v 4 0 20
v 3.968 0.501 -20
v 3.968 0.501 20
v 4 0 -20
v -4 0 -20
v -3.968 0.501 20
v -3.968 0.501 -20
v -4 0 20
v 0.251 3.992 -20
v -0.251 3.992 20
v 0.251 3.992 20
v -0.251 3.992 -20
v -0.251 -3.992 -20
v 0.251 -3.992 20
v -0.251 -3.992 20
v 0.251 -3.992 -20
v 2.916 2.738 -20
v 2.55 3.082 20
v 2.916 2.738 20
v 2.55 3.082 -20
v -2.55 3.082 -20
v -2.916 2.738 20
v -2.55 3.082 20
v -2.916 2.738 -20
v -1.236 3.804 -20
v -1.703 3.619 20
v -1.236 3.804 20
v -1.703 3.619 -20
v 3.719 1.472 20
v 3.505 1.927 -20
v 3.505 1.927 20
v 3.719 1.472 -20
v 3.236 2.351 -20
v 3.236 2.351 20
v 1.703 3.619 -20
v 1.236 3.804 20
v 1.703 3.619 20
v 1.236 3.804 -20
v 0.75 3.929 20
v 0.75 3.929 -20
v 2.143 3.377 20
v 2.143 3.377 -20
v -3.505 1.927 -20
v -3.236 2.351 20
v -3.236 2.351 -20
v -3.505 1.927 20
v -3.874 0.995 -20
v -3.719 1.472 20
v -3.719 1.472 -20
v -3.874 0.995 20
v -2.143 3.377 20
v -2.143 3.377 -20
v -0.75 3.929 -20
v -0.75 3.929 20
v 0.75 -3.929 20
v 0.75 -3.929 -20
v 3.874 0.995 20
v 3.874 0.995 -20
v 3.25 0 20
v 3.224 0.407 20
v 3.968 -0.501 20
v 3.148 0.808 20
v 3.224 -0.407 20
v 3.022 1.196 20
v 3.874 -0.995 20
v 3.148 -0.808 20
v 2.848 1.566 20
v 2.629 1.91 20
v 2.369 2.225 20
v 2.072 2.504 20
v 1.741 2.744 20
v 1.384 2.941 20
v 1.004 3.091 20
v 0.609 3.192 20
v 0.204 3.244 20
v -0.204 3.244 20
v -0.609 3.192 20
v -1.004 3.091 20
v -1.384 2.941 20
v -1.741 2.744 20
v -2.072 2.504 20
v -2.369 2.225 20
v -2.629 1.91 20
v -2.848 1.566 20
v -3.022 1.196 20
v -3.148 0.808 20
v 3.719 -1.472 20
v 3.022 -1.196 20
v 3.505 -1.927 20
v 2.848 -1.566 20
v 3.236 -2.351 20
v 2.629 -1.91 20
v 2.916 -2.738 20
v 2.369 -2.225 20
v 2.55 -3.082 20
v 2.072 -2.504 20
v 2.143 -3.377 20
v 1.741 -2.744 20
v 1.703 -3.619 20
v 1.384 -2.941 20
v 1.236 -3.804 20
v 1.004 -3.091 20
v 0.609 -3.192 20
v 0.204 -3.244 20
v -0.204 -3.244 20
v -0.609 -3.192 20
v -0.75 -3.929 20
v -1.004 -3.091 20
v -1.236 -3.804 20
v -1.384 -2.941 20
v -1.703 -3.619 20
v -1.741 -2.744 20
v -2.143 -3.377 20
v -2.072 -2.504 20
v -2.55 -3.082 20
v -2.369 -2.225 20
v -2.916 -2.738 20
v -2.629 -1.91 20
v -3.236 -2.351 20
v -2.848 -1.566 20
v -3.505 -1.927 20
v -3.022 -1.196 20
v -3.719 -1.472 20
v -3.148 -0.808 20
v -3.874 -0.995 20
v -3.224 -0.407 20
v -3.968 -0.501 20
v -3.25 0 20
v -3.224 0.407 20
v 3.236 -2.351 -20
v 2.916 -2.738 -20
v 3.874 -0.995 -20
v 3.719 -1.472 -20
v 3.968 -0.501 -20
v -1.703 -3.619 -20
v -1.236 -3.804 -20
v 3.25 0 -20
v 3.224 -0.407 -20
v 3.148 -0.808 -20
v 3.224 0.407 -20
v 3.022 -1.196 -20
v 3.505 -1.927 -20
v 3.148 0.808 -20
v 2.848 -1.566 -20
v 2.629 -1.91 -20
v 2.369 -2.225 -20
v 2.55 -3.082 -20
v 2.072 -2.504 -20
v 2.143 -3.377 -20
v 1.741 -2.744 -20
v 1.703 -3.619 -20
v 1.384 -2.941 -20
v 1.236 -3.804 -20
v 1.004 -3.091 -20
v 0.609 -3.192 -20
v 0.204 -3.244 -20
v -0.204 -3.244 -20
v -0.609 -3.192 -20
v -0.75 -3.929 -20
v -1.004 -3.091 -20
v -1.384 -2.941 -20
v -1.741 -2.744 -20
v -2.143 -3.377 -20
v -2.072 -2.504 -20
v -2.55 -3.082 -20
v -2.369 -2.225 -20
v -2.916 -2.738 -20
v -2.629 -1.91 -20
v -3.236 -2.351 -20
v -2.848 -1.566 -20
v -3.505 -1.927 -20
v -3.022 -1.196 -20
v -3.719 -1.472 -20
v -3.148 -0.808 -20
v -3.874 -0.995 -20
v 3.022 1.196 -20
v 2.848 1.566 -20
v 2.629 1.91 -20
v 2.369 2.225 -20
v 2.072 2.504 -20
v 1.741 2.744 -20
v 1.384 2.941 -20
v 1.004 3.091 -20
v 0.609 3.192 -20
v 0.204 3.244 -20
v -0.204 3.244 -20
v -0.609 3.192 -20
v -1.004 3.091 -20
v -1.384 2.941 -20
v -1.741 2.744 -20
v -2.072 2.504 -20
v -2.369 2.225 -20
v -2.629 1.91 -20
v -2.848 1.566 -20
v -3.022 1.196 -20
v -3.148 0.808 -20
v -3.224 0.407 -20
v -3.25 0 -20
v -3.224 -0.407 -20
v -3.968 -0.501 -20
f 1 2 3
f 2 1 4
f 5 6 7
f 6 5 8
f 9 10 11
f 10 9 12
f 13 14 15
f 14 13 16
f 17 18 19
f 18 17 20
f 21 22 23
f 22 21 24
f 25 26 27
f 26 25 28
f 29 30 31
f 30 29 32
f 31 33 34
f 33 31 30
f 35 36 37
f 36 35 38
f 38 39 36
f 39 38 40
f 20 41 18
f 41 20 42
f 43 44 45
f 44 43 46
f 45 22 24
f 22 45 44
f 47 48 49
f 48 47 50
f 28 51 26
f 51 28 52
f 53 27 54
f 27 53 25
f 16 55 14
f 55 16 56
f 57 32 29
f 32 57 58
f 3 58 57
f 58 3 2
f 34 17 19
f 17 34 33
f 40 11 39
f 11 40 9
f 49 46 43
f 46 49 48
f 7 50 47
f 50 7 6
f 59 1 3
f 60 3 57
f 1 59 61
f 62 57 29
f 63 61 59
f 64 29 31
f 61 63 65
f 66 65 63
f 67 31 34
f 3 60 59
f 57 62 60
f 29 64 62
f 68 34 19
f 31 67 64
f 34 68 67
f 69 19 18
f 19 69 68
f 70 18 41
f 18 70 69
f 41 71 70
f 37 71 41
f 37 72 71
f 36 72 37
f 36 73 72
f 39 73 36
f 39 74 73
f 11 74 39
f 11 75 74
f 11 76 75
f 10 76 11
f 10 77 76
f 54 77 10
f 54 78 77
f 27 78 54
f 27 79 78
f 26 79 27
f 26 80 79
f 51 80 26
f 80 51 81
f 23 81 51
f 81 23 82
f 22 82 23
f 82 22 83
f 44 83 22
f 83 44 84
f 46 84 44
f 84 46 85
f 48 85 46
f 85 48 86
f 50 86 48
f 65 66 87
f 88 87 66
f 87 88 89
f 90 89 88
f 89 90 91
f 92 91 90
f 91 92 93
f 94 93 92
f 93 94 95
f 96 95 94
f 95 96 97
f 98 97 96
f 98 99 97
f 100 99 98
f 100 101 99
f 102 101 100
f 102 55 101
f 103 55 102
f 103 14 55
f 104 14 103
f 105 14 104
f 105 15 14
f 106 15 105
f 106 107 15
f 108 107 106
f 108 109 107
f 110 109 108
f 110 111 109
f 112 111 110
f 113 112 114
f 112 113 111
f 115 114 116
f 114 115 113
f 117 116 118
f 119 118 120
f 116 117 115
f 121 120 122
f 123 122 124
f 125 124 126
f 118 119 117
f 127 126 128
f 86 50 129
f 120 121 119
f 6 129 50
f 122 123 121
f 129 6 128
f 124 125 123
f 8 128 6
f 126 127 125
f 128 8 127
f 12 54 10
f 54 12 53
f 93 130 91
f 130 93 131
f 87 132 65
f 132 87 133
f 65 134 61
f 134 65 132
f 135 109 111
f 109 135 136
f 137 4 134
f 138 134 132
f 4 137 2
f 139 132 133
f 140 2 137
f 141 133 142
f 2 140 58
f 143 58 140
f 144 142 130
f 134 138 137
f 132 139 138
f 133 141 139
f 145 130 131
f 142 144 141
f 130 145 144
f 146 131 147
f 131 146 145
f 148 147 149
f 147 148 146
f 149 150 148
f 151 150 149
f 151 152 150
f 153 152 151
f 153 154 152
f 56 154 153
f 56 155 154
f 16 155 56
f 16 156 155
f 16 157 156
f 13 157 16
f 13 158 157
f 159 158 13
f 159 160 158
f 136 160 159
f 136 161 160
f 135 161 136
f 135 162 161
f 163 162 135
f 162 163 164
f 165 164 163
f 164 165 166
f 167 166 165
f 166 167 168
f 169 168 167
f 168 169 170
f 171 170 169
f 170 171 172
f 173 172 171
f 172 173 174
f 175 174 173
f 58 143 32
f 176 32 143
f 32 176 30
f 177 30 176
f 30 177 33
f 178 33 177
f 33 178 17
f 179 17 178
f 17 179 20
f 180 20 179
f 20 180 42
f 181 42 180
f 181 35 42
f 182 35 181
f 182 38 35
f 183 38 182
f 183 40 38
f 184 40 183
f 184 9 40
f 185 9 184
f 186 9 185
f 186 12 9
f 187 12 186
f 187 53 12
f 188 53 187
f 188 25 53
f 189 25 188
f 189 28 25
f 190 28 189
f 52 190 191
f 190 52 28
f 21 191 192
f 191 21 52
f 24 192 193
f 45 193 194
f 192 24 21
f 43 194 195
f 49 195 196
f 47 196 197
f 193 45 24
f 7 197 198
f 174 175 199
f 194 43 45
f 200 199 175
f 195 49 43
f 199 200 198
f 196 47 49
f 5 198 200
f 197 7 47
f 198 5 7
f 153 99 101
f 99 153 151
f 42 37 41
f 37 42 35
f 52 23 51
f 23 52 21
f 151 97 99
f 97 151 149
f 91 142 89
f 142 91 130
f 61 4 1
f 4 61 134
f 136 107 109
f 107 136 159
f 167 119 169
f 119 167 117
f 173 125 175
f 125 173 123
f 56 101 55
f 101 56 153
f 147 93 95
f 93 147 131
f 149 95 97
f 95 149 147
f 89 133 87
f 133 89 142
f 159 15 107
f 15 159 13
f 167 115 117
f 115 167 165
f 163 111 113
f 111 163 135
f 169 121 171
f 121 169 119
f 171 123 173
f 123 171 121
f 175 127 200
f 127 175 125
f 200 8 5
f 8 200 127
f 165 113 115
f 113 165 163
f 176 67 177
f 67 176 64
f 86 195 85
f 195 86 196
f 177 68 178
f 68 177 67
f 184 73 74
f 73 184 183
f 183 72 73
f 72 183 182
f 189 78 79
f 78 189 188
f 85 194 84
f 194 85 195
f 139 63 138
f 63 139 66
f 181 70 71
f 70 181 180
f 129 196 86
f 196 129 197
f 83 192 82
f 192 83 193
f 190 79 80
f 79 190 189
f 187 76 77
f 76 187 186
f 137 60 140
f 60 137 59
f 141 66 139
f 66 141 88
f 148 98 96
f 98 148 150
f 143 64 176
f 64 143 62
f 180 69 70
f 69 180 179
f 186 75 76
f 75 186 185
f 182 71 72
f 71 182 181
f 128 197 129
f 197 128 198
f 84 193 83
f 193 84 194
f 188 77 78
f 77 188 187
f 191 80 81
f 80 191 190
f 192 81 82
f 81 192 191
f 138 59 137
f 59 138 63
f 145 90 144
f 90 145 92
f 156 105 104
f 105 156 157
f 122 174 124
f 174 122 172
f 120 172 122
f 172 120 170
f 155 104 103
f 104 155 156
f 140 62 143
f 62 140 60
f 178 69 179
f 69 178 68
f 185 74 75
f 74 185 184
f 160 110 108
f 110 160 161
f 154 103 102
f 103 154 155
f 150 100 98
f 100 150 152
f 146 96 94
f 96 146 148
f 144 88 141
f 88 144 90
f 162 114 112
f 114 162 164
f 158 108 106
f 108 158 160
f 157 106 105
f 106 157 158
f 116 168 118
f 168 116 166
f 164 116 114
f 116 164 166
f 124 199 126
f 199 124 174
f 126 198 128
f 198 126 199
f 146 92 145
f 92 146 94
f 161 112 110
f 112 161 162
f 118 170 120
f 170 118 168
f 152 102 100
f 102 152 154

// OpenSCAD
$fn = 50;


difference() {
	union() {
		translate(v = [0, 0, -20.0000000000]) {
			cylinder(h = 40, r = 4.0000000000);
		}
	}
	union() {
		translate(v = [0, 0, -100.0000000000]) {
			cylinder(h = 200, r = 3.2500000000);
		}
	}
}
